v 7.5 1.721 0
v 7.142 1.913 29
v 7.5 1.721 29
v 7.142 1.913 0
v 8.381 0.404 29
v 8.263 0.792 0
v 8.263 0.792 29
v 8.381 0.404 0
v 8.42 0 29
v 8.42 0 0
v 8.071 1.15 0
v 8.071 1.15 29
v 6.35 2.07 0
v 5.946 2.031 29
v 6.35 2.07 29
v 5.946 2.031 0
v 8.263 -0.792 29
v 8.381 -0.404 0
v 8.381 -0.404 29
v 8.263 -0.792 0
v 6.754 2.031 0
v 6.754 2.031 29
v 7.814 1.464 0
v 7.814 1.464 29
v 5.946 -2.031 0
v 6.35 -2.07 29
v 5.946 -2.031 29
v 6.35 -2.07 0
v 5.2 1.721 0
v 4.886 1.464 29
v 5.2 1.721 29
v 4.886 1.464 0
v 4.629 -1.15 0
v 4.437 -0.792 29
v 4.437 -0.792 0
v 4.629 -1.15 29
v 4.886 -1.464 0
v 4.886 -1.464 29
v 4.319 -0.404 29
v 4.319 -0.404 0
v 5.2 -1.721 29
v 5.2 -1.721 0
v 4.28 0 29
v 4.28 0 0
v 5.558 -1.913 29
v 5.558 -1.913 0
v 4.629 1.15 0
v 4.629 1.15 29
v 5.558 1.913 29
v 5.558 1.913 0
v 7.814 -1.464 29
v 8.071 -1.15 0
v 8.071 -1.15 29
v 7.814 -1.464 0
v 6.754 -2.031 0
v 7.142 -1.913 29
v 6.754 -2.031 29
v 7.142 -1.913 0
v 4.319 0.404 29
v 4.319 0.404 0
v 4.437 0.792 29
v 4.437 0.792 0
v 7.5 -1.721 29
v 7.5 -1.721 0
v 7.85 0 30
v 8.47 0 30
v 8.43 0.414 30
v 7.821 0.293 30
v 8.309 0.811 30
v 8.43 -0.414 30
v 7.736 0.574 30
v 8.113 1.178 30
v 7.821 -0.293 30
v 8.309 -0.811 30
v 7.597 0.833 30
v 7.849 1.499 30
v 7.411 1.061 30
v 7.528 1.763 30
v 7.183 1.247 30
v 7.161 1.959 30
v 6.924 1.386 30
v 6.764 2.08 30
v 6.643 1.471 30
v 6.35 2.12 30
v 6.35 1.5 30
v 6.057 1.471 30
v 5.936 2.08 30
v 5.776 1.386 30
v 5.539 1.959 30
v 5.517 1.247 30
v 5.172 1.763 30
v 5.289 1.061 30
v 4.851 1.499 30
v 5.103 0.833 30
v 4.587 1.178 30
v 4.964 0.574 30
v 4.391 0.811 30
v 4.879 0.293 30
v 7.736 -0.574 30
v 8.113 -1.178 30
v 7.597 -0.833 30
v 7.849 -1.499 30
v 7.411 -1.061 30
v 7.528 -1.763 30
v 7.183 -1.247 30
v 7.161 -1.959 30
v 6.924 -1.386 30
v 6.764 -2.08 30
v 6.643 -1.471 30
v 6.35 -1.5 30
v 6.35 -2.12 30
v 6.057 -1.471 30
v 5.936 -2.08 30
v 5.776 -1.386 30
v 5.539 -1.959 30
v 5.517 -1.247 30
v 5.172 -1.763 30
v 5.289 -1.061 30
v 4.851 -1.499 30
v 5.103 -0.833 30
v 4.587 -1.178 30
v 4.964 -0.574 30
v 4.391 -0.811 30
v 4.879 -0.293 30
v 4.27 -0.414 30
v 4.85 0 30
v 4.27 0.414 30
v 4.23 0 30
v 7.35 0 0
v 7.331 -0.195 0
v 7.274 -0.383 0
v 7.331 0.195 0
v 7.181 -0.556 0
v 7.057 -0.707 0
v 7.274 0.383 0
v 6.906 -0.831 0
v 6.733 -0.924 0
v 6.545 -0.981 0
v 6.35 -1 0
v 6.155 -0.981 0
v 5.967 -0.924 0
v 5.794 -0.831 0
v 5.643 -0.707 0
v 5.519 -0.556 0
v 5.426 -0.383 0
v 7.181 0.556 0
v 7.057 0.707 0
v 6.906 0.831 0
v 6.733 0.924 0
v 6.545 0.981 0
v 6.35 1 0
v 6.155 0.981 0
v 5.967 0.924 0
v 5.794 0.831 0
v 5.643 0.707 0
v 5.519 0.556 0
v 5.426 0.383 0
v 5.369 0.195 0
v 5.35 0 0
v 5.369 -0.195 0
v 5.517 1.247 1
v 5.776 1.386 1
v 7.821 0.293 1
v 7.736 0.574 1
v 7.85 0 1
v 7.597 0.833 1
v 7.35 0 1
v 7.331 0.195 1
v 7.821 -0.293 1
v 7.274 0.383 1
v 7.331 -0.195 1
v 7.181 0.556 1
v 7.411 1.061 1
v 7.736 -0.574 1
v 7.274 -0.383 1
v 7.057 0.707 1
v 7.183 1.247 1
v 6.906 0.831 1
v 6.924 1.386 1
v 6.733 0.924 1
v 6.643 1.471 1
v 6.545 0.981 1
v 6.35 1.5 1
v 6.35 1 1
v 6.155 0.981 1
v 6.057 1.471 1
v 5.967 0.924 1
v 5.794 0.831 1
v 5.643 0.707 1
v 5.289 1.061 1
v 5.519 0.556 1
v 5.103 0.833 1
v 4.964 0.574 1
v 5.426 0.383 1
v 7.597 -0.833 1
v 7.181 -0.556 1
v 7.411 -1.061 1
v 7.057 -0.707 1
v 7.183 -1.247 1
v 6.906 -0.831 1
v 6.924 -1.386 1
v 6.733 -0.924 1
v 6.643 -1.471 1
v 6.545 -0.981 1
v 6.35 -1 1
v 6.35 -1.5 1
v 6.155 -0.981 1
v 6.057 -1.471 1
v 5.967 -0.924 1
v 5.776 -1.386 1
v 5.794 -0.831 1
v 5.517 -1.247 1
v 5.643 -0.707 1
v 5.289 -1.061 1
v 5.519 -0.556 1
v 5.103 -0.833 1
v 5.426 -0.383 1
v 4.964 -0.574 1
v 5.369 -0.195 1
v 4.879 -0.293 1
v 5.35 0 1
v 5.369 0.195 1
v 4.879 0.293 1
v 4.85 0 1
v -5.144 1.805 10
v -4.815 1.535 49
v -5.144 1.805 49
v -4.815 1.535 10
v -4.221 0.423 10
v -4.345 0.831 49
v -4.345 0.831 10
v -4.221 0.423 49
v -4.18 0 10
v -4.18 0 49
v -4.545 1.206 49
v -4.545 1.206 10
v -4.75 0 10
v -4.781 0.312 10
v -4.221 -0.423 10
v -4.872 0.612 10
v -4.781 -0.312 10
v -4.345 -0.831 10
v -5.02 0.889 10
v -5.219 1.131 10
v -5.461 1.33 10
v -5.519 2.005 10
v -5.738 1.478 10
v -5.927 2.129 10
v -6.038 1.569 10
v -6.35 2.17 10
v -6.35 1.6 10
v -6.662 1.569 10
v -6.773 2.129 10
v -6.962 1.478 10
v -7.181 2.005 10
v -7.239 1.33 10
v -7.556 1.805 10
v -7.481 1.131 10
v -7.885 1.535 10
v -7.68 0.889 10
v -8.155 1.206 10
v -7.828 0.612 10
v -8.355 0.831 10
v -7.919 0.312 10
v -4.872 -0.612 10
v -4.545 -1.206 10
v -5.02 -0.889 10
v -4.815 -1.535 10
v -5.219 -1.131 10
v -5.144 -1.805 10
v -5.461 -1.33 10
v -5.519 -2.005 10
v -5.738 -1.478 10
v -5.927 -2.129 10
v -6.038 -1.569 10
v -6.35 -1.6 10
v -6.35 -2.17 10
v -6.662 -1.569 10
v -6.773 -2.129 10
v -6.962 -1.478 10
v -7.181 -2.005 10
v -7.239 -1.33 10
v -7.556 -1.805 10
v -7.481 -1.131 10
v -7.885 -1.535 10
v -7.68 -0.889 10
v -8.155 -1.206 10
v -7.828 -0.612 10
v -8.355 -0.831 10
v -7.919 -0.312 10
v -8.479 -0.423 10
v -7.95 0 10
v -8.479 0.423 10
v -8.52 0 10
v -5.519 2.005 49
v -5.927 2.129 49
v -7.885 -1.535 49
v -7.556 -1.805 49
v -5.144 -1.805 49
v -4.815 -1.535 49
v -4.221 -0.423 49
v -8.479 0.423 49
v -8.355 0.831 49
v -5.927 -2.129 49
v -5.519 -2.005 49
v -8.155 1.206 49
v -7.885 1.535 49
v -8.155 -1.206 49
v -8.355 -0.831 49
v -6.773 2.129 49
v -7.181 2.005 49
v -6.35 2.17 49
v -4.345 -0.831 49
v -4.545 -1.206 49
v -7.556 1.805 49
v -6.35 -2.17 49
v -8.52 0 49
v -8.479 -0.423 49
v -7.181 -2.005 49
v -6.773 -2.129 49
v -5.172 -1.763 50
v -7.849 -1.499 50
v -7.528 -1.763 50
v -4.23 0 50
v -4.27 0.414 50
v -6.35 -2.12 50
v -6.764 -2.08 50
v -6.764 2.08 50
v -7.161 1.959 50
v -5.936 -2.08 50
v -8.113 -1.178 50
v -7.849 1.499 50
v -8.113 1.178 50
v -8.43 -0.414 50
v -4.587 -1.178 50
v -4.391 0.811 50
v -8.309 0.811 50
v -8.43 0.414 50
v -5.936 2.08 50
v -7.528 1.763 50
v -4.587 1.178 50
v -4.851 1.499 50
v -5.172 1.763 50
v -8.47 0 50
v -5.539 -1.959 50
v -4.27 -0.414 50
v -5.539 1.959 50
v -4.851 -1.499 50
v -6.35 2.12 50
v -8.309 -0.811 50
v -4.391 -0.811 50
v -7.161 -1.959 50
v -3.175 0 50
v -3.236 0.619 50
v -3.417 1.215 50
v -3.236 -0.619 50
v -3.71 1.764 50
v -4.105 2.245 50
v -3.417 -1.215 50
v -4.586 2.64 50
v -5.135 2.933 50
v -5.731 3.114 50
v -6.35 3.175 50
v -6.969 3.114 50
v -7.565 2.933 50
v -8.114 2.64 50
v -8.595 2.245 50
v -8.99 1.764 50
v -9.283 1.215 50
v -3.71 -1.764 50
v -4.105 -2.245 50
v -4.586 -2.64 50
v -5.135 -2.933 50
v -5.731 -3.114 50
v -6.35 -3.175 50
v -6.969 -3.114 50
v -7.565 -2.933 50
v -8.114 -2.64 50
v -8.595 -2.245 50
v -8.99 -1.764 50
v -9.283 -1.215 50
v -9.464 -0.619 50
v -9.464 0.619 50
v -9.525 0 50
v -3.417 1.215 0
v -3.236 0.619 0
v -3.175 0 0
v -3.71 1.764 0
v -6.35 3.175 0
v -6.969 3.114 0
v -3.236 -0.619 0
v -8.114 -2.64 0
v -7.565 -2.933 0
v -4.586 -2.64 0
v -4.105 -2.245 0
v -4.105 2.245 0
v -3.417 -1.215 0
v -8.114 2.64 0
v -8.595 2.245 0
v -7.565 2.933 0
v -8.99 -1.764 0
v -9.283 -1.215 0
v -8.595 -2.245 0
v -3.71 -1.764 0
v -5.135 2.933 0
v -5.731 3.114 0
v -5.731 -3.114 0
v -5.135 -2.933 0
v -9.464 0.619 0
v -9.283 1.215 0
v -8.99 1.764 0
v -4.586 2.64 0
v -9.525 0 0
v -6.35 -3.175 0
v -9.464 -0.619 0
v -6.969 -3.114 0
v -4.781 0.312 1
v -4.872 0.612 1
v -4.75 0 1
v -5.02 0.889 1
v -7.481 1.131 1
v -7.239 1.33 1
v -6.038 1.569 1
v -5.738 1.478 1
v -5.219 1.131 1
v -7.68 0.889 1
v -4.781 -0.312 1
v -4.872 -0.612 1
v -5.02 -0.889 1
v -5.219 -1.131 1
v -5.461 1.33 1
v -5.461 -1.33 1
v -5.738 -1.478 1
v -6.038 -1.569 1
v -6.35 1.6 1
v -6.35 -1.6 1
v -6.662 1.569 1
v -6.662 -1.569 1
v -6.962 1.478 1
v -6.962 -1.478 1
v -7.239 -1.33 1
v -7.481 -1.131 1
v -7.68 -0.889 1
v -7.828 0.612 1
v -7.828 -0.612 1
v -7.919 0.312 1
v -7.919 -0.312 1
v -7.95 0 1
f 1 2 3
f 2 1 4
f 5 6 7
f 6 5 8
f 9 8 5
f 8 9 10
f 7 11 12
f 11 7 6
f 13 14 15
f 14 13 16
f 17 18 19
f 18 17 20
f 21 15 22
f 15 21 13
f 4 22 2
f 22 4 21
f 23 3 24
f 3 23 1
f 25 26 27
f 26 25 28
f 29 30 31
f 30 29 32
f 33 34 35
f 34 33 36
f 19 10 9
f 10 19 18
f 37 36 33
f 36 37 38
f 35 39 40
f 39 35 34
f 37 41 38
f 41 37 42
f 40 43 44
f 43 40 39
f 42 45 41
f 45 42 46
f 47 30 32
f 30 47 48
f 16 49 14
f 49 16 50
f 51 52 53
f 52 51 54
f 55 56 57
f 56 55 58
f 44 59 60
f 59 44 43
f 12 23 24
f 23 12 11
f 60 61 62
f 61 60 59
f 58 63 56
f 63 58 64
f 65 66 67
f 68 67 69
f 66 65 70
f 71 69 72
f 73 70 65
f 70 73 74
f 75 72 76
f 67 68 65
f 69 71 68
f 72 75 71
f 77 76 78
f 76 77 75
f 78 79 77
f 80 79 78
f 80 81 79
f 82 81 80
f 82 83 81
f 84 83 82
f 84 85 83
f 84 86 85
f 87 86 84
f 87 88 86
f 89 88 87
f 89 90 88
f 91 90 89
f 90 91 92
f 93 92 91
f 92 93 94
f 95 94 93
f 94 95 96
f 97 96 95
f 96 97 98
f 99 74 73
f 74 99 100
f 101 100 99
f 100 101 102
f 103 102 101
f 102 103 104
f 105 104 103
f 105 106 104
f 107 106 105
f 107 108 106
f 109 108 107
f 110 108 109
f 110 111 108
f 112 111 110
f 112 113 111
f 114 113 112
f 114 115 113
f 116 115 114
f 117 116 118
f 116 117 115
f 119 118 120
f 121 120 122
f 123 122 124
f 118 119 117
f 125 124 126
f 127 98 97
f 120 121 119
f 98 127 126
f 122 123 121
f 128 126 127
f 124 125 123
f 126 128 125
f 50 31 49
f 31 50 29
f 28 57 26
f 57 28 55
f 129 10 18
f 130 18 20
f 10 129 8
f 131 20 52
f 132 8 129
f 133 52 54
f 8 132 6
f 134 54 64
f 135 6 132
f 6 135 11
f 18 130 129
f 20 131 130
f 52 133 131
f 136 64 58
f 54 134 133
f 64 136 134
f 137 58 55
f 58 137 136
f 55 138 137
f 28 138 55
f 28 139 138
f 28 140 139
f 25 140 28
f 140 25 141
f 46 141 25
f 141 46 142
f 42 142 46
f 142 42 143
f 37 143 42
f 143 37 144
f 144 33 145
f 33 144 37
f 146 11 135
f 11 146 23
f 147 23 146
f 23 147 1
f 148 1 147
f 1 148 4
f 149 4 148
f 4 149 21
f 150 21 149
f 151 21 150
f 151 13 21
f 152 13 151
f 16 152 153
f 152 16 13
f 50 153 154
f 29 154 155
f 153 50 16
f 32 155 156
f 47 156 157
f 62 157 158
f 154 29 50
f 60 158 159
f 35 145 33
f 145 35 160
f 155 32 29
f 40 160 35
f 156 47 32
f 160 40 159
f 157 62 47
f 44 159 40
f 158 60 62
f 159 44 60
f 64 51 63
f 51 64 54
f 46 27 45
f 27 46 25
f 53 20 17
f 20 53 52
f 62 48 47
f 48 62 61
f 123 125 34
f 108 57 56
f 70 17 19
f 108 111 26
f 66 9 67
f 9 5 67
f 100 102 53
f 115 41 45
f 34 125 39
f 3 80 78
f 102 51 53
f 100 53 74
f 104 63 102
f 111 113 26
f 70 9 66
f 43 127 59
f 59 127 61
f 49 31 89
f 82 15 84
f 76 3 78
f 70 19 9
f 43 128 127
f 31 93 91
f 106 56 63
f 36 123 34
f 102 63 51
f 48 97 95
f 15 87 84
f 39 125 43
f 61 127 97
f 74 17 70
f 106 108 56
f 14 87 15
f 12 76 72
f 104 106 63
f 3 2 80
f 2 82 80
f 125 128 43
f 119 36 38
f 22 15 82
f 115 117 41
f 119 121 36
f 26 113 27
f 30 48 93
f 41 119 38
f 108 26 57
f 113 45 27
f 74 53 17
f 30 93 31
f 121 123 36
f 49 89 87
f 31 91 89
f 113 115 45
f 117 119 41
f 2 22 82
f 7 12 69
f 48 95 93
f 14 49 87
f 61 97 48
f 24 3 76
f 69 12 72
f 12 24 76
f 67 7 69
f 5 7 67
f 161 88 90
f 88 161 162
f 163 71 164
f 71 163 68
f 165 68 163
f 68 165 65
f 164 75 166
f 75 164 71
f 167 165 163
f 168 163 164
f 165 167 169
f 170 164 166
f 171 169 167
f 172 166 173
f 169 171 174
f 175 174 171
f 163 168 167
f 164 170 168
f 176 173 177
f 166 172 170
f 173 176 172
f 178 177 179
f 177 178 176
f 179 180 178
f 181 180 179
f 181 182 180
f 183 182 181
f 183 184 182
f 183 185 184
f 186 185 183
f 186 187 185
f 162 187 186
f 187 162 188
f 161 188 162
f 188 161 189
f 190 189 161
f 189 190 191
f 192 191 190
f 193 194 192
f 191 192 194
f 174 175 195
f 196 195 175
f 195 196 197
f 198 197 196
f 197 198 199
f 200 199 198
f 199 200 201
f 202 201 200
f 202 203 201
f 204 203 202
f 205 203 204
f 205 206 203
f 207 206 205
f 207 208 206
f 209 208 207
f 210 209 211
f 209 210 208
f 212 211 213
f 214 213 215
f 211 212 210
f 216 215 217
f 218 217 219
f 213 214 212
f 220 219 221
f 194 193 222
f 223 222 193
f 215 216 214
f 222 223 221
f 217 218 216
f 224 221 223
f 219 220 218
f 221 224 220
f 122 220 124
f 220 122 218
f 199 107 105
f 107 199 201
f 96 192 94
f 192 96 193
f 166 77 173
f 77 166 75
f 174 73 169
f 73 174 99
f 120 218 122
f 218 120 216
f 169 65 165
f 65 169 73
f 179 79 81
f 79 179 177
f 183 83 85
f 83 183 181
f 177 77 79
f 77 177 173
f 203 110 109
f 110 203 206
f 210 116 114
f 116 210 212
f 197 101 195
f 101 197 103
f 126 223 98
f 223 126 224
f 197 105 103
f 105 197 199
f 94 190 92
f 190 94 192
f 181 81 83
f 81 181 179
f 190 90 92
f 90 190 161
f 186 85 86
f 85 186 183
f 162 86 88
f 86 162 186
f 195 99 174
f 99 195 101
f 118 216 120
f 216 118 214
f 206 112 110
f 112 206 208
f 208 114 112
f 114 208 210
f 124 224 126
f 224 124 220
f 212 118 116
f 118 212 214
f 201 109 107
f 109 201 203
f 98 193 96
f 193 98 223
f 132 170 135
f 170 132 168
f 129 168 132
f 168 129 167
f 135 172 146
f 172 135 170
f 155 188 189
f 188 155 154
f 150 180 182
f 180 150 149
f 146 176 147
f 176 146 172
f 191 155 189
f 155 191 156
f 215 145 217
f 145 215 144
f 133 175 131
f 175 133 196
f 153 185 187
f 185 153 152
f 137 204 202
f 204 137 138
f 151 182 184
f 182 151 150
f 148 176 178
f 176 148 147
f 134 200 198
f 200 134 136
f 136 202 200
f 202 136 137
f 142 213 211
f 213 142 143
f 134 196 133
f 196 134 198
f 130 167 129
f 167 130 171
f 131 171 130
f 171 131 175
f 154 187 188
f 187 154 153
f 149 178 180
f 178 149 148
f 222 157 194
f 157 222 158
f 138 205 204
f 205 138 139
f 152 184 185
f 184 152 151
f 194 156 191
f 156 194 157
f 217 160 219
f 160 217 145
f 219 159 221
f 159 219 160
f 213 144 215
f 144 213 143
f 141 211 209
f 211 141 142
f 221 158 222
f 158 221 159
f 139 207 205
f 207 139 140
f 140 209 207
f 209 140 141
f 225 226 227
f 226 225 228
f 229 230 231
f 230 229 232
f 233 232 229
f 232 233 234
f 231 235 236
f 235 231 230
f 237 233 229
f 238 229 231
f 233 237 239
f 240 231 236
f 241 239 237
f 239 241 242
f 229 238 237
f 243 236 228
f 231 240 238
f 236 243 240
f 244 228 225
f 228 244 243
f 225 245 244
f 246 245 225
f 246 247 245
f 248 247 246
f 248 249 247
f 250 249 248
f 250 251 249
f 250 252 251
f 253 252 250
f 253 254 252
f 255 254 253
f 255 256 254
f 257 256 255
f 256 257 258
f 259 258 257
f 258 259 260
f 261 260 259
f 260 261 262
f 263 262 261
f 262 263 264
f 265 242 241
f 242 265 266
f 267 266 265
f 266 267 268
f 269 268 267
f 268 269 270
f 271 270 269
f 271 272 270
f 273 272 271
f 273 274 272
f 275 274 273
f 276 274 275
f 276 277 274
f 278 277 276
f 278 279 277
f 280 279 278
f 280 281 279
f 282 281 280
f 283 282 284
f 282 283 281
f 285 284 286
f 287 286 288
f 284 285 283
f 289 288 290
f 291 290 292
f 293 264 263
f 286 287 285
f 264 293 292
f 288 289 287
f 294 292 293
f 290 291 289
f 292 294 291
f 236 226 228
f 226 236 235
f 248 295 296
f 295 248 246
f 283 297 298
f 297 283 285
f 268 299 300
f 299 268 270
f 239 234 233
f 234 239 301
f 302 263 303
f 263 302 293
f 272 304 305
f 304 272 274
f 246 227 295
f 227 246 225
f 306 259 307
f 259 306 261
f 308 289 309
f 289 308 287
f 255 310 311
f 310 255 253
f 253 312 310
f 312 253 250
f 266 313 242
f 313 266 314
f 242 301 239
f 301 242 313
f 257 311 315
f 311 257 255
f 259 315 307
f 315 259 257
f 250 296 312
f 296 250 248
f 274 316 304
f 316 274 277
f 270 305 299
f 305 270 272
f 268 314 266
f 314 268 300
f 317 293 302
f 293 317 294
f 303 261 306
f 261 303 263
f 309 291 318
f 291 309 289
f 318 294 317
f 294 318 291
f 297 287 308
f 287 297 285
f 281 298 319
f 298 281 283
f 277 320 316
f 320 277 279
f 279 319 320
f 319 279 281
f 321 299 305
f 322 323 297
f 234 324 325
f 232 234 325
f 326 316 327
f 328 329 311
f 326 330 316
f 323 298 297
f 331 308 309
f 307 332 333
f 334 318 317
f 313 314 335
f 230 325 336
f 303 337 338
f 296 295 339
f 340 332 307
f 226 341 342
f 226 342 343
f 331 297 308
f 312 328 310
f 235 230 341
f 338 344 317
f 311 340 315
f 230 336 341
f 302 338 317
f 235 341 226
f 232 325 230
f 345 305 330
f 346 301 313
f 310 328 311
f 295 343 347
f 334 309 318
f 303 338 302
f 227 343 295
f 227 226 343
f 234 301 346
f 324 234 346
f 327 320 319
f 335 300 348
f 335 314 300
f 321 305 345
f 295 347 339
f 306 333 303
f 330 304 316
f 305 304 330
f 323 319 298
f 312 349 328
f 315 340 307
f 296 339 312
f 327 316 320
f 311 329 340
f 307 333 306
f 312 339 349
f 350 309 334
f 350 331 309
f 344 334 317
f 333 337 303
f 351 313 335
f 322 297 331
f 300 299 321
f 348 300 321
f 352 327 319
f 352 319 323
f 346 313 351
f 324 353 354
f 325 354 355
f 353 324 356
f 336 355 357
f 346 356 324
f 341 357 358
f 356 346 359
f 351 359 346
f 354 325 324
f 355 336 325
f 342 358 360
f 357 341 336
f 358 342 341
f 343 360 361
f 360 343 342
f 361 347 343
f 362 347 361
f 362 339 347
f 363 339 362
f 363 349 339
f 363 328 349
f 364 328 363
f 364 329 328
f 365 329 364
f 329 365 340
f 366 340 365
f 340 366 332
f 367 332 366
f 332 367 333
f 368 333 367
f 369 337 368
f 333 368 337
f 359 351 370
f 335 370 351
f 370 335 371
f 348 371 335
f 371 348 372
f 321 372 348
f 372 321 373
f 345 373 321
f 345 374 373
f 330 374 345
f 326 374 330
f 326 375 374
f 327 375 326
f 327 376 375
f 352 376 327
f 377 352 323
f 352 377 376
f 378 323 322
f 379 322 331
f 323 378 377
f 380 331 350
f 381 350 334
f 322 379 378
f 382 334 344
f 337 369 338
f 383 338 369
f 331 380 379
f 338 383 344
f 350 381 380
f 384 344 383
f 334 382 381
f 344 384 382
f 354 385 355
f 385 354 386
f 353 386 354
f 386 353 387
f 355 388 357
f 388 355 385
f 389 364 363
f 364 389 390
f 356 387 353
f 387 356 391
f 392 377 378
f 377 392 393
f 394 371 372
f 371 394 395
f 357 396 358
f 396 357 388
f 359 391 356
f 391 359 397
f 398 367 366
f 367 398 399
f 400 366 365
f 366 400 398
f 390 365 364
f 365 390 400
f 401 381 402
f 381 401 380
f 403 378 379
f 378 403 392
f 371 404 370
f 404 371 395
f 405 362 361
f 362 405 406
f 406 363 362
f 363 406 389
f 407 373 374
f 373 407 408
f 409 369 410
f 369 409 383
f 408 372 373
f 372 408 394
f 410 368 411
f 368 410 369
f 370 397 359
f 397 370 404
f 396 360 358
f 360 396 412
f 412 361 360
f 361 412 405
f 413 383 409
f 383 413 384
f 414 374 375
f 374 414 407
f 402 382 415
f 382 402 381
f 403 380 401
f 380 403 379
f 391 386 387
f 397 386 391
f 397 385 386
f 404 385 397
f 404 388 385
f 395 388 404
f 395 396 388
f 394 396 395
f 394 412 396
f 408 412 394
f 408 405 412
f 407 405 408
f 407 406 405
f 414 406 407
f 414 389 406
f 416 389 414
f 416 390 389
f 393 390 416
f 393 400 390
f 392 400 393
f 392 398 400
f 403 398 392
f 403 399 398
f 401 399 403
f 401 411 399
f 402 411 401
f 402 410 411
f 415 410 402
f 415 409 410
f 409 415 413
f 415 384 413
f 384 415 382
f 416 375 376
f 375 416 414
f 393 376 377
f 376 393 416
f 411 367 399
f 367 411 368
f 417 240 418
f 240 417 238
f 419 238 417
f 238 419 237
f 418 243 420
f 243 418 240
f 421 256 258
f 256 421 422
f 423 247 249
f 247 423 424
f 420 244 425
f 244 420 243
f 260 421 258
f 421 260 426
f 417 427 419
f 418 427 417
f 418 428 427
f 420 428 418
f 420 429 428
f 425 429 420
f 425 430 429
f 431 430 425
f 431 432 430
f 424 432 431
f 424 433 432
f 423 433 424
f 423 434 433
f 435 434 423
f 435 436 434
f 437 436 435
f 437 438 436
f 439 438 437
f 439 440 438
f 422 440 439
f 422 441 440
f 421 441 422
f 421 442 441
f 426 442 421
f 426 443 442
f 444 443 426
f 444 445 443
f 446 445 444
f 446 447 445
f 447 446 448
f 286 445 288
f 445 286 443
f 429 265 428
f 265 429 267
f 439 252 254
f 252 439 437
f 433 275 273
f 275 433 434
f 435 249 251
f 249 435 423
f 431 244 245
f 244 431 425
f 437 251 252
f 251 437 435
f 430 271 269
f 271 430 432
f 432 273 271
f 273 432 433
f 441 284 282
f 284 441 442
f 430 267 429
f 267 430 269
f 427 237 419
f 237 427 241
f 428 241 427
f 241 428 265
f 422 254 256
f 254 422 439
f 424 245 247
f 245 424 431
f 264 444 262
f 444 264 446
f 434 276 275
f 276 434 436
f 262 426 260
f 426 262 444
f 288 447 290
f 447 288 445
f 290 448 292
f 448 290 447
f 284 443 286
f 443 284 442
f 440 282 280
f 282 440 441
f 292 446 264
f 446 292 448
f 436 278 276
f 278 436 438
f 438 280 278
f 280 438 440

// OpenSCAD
$fn = 32;

T = 0.1;

outer_D = 6.35;
outer_h = 50;

inner_D = 3;
inner_d = 2;
inner_h = 30;

spring_retainer = 10;

mid = inner_D + (outer_D - inner_D)/2.7;

module outer() {
	difference() {
		cylinder(d=outer_D, h=outer_h); // Outer Shell
		union() {
			translate([0, 0, spring_retainer])
				cylinder(d=mid+T, h=outer_h-spring_retainer-1); // Inner Shell
			translate([0, 0, outer_h-1])
				cylinder(d1=mid+T, d2=mid, h=1); // Taper Locker
		}
		translate([0, 0, 1])
			cylinder(d=inner_D+T*2, h=spring_retainer); // Spring retainer
		translate([0, 0, outer_h-2])
			cylinder(d=mid, h=3); // Top render helper
	}
}

module inner() {
	difference() {
		union() {
			cylinder(d=mid-T, h=inner_h); // Outer Shell
			translate([0, 0, inner_h-1])
				cylinder(d1=mid-T, d2=mid, h=1); // Taper Locker
		}
		translate([0, 0, 1])
			cylinder(d=inner_D, h=inner_h); // Inner Shell
		translate([0, 0, -1])
			cylinder(d=inner_d, h=inner_h); // Pen tip opening
	}
}

module cut() {
	difference() {
		children();
		translate([0, -outer_D, -1])
			cube([outer_D, outer_D*2, outer_h+2]);
	}
}

module tapers() {
	translate([0, 0, -inner_h+1])
		cut()
			inner();

	translate([0, 0, outer_h])
		rotate(180, [1,0,0])
			cut()
				color("white")
					outer();
}

module render() {
	translate([outer_D, 0, 0])
		inner();

	translate([-outer_D, 0, 0])
		outer();
}

render();
/*
tapers();
cut() outer();
cut() inner();
*/
